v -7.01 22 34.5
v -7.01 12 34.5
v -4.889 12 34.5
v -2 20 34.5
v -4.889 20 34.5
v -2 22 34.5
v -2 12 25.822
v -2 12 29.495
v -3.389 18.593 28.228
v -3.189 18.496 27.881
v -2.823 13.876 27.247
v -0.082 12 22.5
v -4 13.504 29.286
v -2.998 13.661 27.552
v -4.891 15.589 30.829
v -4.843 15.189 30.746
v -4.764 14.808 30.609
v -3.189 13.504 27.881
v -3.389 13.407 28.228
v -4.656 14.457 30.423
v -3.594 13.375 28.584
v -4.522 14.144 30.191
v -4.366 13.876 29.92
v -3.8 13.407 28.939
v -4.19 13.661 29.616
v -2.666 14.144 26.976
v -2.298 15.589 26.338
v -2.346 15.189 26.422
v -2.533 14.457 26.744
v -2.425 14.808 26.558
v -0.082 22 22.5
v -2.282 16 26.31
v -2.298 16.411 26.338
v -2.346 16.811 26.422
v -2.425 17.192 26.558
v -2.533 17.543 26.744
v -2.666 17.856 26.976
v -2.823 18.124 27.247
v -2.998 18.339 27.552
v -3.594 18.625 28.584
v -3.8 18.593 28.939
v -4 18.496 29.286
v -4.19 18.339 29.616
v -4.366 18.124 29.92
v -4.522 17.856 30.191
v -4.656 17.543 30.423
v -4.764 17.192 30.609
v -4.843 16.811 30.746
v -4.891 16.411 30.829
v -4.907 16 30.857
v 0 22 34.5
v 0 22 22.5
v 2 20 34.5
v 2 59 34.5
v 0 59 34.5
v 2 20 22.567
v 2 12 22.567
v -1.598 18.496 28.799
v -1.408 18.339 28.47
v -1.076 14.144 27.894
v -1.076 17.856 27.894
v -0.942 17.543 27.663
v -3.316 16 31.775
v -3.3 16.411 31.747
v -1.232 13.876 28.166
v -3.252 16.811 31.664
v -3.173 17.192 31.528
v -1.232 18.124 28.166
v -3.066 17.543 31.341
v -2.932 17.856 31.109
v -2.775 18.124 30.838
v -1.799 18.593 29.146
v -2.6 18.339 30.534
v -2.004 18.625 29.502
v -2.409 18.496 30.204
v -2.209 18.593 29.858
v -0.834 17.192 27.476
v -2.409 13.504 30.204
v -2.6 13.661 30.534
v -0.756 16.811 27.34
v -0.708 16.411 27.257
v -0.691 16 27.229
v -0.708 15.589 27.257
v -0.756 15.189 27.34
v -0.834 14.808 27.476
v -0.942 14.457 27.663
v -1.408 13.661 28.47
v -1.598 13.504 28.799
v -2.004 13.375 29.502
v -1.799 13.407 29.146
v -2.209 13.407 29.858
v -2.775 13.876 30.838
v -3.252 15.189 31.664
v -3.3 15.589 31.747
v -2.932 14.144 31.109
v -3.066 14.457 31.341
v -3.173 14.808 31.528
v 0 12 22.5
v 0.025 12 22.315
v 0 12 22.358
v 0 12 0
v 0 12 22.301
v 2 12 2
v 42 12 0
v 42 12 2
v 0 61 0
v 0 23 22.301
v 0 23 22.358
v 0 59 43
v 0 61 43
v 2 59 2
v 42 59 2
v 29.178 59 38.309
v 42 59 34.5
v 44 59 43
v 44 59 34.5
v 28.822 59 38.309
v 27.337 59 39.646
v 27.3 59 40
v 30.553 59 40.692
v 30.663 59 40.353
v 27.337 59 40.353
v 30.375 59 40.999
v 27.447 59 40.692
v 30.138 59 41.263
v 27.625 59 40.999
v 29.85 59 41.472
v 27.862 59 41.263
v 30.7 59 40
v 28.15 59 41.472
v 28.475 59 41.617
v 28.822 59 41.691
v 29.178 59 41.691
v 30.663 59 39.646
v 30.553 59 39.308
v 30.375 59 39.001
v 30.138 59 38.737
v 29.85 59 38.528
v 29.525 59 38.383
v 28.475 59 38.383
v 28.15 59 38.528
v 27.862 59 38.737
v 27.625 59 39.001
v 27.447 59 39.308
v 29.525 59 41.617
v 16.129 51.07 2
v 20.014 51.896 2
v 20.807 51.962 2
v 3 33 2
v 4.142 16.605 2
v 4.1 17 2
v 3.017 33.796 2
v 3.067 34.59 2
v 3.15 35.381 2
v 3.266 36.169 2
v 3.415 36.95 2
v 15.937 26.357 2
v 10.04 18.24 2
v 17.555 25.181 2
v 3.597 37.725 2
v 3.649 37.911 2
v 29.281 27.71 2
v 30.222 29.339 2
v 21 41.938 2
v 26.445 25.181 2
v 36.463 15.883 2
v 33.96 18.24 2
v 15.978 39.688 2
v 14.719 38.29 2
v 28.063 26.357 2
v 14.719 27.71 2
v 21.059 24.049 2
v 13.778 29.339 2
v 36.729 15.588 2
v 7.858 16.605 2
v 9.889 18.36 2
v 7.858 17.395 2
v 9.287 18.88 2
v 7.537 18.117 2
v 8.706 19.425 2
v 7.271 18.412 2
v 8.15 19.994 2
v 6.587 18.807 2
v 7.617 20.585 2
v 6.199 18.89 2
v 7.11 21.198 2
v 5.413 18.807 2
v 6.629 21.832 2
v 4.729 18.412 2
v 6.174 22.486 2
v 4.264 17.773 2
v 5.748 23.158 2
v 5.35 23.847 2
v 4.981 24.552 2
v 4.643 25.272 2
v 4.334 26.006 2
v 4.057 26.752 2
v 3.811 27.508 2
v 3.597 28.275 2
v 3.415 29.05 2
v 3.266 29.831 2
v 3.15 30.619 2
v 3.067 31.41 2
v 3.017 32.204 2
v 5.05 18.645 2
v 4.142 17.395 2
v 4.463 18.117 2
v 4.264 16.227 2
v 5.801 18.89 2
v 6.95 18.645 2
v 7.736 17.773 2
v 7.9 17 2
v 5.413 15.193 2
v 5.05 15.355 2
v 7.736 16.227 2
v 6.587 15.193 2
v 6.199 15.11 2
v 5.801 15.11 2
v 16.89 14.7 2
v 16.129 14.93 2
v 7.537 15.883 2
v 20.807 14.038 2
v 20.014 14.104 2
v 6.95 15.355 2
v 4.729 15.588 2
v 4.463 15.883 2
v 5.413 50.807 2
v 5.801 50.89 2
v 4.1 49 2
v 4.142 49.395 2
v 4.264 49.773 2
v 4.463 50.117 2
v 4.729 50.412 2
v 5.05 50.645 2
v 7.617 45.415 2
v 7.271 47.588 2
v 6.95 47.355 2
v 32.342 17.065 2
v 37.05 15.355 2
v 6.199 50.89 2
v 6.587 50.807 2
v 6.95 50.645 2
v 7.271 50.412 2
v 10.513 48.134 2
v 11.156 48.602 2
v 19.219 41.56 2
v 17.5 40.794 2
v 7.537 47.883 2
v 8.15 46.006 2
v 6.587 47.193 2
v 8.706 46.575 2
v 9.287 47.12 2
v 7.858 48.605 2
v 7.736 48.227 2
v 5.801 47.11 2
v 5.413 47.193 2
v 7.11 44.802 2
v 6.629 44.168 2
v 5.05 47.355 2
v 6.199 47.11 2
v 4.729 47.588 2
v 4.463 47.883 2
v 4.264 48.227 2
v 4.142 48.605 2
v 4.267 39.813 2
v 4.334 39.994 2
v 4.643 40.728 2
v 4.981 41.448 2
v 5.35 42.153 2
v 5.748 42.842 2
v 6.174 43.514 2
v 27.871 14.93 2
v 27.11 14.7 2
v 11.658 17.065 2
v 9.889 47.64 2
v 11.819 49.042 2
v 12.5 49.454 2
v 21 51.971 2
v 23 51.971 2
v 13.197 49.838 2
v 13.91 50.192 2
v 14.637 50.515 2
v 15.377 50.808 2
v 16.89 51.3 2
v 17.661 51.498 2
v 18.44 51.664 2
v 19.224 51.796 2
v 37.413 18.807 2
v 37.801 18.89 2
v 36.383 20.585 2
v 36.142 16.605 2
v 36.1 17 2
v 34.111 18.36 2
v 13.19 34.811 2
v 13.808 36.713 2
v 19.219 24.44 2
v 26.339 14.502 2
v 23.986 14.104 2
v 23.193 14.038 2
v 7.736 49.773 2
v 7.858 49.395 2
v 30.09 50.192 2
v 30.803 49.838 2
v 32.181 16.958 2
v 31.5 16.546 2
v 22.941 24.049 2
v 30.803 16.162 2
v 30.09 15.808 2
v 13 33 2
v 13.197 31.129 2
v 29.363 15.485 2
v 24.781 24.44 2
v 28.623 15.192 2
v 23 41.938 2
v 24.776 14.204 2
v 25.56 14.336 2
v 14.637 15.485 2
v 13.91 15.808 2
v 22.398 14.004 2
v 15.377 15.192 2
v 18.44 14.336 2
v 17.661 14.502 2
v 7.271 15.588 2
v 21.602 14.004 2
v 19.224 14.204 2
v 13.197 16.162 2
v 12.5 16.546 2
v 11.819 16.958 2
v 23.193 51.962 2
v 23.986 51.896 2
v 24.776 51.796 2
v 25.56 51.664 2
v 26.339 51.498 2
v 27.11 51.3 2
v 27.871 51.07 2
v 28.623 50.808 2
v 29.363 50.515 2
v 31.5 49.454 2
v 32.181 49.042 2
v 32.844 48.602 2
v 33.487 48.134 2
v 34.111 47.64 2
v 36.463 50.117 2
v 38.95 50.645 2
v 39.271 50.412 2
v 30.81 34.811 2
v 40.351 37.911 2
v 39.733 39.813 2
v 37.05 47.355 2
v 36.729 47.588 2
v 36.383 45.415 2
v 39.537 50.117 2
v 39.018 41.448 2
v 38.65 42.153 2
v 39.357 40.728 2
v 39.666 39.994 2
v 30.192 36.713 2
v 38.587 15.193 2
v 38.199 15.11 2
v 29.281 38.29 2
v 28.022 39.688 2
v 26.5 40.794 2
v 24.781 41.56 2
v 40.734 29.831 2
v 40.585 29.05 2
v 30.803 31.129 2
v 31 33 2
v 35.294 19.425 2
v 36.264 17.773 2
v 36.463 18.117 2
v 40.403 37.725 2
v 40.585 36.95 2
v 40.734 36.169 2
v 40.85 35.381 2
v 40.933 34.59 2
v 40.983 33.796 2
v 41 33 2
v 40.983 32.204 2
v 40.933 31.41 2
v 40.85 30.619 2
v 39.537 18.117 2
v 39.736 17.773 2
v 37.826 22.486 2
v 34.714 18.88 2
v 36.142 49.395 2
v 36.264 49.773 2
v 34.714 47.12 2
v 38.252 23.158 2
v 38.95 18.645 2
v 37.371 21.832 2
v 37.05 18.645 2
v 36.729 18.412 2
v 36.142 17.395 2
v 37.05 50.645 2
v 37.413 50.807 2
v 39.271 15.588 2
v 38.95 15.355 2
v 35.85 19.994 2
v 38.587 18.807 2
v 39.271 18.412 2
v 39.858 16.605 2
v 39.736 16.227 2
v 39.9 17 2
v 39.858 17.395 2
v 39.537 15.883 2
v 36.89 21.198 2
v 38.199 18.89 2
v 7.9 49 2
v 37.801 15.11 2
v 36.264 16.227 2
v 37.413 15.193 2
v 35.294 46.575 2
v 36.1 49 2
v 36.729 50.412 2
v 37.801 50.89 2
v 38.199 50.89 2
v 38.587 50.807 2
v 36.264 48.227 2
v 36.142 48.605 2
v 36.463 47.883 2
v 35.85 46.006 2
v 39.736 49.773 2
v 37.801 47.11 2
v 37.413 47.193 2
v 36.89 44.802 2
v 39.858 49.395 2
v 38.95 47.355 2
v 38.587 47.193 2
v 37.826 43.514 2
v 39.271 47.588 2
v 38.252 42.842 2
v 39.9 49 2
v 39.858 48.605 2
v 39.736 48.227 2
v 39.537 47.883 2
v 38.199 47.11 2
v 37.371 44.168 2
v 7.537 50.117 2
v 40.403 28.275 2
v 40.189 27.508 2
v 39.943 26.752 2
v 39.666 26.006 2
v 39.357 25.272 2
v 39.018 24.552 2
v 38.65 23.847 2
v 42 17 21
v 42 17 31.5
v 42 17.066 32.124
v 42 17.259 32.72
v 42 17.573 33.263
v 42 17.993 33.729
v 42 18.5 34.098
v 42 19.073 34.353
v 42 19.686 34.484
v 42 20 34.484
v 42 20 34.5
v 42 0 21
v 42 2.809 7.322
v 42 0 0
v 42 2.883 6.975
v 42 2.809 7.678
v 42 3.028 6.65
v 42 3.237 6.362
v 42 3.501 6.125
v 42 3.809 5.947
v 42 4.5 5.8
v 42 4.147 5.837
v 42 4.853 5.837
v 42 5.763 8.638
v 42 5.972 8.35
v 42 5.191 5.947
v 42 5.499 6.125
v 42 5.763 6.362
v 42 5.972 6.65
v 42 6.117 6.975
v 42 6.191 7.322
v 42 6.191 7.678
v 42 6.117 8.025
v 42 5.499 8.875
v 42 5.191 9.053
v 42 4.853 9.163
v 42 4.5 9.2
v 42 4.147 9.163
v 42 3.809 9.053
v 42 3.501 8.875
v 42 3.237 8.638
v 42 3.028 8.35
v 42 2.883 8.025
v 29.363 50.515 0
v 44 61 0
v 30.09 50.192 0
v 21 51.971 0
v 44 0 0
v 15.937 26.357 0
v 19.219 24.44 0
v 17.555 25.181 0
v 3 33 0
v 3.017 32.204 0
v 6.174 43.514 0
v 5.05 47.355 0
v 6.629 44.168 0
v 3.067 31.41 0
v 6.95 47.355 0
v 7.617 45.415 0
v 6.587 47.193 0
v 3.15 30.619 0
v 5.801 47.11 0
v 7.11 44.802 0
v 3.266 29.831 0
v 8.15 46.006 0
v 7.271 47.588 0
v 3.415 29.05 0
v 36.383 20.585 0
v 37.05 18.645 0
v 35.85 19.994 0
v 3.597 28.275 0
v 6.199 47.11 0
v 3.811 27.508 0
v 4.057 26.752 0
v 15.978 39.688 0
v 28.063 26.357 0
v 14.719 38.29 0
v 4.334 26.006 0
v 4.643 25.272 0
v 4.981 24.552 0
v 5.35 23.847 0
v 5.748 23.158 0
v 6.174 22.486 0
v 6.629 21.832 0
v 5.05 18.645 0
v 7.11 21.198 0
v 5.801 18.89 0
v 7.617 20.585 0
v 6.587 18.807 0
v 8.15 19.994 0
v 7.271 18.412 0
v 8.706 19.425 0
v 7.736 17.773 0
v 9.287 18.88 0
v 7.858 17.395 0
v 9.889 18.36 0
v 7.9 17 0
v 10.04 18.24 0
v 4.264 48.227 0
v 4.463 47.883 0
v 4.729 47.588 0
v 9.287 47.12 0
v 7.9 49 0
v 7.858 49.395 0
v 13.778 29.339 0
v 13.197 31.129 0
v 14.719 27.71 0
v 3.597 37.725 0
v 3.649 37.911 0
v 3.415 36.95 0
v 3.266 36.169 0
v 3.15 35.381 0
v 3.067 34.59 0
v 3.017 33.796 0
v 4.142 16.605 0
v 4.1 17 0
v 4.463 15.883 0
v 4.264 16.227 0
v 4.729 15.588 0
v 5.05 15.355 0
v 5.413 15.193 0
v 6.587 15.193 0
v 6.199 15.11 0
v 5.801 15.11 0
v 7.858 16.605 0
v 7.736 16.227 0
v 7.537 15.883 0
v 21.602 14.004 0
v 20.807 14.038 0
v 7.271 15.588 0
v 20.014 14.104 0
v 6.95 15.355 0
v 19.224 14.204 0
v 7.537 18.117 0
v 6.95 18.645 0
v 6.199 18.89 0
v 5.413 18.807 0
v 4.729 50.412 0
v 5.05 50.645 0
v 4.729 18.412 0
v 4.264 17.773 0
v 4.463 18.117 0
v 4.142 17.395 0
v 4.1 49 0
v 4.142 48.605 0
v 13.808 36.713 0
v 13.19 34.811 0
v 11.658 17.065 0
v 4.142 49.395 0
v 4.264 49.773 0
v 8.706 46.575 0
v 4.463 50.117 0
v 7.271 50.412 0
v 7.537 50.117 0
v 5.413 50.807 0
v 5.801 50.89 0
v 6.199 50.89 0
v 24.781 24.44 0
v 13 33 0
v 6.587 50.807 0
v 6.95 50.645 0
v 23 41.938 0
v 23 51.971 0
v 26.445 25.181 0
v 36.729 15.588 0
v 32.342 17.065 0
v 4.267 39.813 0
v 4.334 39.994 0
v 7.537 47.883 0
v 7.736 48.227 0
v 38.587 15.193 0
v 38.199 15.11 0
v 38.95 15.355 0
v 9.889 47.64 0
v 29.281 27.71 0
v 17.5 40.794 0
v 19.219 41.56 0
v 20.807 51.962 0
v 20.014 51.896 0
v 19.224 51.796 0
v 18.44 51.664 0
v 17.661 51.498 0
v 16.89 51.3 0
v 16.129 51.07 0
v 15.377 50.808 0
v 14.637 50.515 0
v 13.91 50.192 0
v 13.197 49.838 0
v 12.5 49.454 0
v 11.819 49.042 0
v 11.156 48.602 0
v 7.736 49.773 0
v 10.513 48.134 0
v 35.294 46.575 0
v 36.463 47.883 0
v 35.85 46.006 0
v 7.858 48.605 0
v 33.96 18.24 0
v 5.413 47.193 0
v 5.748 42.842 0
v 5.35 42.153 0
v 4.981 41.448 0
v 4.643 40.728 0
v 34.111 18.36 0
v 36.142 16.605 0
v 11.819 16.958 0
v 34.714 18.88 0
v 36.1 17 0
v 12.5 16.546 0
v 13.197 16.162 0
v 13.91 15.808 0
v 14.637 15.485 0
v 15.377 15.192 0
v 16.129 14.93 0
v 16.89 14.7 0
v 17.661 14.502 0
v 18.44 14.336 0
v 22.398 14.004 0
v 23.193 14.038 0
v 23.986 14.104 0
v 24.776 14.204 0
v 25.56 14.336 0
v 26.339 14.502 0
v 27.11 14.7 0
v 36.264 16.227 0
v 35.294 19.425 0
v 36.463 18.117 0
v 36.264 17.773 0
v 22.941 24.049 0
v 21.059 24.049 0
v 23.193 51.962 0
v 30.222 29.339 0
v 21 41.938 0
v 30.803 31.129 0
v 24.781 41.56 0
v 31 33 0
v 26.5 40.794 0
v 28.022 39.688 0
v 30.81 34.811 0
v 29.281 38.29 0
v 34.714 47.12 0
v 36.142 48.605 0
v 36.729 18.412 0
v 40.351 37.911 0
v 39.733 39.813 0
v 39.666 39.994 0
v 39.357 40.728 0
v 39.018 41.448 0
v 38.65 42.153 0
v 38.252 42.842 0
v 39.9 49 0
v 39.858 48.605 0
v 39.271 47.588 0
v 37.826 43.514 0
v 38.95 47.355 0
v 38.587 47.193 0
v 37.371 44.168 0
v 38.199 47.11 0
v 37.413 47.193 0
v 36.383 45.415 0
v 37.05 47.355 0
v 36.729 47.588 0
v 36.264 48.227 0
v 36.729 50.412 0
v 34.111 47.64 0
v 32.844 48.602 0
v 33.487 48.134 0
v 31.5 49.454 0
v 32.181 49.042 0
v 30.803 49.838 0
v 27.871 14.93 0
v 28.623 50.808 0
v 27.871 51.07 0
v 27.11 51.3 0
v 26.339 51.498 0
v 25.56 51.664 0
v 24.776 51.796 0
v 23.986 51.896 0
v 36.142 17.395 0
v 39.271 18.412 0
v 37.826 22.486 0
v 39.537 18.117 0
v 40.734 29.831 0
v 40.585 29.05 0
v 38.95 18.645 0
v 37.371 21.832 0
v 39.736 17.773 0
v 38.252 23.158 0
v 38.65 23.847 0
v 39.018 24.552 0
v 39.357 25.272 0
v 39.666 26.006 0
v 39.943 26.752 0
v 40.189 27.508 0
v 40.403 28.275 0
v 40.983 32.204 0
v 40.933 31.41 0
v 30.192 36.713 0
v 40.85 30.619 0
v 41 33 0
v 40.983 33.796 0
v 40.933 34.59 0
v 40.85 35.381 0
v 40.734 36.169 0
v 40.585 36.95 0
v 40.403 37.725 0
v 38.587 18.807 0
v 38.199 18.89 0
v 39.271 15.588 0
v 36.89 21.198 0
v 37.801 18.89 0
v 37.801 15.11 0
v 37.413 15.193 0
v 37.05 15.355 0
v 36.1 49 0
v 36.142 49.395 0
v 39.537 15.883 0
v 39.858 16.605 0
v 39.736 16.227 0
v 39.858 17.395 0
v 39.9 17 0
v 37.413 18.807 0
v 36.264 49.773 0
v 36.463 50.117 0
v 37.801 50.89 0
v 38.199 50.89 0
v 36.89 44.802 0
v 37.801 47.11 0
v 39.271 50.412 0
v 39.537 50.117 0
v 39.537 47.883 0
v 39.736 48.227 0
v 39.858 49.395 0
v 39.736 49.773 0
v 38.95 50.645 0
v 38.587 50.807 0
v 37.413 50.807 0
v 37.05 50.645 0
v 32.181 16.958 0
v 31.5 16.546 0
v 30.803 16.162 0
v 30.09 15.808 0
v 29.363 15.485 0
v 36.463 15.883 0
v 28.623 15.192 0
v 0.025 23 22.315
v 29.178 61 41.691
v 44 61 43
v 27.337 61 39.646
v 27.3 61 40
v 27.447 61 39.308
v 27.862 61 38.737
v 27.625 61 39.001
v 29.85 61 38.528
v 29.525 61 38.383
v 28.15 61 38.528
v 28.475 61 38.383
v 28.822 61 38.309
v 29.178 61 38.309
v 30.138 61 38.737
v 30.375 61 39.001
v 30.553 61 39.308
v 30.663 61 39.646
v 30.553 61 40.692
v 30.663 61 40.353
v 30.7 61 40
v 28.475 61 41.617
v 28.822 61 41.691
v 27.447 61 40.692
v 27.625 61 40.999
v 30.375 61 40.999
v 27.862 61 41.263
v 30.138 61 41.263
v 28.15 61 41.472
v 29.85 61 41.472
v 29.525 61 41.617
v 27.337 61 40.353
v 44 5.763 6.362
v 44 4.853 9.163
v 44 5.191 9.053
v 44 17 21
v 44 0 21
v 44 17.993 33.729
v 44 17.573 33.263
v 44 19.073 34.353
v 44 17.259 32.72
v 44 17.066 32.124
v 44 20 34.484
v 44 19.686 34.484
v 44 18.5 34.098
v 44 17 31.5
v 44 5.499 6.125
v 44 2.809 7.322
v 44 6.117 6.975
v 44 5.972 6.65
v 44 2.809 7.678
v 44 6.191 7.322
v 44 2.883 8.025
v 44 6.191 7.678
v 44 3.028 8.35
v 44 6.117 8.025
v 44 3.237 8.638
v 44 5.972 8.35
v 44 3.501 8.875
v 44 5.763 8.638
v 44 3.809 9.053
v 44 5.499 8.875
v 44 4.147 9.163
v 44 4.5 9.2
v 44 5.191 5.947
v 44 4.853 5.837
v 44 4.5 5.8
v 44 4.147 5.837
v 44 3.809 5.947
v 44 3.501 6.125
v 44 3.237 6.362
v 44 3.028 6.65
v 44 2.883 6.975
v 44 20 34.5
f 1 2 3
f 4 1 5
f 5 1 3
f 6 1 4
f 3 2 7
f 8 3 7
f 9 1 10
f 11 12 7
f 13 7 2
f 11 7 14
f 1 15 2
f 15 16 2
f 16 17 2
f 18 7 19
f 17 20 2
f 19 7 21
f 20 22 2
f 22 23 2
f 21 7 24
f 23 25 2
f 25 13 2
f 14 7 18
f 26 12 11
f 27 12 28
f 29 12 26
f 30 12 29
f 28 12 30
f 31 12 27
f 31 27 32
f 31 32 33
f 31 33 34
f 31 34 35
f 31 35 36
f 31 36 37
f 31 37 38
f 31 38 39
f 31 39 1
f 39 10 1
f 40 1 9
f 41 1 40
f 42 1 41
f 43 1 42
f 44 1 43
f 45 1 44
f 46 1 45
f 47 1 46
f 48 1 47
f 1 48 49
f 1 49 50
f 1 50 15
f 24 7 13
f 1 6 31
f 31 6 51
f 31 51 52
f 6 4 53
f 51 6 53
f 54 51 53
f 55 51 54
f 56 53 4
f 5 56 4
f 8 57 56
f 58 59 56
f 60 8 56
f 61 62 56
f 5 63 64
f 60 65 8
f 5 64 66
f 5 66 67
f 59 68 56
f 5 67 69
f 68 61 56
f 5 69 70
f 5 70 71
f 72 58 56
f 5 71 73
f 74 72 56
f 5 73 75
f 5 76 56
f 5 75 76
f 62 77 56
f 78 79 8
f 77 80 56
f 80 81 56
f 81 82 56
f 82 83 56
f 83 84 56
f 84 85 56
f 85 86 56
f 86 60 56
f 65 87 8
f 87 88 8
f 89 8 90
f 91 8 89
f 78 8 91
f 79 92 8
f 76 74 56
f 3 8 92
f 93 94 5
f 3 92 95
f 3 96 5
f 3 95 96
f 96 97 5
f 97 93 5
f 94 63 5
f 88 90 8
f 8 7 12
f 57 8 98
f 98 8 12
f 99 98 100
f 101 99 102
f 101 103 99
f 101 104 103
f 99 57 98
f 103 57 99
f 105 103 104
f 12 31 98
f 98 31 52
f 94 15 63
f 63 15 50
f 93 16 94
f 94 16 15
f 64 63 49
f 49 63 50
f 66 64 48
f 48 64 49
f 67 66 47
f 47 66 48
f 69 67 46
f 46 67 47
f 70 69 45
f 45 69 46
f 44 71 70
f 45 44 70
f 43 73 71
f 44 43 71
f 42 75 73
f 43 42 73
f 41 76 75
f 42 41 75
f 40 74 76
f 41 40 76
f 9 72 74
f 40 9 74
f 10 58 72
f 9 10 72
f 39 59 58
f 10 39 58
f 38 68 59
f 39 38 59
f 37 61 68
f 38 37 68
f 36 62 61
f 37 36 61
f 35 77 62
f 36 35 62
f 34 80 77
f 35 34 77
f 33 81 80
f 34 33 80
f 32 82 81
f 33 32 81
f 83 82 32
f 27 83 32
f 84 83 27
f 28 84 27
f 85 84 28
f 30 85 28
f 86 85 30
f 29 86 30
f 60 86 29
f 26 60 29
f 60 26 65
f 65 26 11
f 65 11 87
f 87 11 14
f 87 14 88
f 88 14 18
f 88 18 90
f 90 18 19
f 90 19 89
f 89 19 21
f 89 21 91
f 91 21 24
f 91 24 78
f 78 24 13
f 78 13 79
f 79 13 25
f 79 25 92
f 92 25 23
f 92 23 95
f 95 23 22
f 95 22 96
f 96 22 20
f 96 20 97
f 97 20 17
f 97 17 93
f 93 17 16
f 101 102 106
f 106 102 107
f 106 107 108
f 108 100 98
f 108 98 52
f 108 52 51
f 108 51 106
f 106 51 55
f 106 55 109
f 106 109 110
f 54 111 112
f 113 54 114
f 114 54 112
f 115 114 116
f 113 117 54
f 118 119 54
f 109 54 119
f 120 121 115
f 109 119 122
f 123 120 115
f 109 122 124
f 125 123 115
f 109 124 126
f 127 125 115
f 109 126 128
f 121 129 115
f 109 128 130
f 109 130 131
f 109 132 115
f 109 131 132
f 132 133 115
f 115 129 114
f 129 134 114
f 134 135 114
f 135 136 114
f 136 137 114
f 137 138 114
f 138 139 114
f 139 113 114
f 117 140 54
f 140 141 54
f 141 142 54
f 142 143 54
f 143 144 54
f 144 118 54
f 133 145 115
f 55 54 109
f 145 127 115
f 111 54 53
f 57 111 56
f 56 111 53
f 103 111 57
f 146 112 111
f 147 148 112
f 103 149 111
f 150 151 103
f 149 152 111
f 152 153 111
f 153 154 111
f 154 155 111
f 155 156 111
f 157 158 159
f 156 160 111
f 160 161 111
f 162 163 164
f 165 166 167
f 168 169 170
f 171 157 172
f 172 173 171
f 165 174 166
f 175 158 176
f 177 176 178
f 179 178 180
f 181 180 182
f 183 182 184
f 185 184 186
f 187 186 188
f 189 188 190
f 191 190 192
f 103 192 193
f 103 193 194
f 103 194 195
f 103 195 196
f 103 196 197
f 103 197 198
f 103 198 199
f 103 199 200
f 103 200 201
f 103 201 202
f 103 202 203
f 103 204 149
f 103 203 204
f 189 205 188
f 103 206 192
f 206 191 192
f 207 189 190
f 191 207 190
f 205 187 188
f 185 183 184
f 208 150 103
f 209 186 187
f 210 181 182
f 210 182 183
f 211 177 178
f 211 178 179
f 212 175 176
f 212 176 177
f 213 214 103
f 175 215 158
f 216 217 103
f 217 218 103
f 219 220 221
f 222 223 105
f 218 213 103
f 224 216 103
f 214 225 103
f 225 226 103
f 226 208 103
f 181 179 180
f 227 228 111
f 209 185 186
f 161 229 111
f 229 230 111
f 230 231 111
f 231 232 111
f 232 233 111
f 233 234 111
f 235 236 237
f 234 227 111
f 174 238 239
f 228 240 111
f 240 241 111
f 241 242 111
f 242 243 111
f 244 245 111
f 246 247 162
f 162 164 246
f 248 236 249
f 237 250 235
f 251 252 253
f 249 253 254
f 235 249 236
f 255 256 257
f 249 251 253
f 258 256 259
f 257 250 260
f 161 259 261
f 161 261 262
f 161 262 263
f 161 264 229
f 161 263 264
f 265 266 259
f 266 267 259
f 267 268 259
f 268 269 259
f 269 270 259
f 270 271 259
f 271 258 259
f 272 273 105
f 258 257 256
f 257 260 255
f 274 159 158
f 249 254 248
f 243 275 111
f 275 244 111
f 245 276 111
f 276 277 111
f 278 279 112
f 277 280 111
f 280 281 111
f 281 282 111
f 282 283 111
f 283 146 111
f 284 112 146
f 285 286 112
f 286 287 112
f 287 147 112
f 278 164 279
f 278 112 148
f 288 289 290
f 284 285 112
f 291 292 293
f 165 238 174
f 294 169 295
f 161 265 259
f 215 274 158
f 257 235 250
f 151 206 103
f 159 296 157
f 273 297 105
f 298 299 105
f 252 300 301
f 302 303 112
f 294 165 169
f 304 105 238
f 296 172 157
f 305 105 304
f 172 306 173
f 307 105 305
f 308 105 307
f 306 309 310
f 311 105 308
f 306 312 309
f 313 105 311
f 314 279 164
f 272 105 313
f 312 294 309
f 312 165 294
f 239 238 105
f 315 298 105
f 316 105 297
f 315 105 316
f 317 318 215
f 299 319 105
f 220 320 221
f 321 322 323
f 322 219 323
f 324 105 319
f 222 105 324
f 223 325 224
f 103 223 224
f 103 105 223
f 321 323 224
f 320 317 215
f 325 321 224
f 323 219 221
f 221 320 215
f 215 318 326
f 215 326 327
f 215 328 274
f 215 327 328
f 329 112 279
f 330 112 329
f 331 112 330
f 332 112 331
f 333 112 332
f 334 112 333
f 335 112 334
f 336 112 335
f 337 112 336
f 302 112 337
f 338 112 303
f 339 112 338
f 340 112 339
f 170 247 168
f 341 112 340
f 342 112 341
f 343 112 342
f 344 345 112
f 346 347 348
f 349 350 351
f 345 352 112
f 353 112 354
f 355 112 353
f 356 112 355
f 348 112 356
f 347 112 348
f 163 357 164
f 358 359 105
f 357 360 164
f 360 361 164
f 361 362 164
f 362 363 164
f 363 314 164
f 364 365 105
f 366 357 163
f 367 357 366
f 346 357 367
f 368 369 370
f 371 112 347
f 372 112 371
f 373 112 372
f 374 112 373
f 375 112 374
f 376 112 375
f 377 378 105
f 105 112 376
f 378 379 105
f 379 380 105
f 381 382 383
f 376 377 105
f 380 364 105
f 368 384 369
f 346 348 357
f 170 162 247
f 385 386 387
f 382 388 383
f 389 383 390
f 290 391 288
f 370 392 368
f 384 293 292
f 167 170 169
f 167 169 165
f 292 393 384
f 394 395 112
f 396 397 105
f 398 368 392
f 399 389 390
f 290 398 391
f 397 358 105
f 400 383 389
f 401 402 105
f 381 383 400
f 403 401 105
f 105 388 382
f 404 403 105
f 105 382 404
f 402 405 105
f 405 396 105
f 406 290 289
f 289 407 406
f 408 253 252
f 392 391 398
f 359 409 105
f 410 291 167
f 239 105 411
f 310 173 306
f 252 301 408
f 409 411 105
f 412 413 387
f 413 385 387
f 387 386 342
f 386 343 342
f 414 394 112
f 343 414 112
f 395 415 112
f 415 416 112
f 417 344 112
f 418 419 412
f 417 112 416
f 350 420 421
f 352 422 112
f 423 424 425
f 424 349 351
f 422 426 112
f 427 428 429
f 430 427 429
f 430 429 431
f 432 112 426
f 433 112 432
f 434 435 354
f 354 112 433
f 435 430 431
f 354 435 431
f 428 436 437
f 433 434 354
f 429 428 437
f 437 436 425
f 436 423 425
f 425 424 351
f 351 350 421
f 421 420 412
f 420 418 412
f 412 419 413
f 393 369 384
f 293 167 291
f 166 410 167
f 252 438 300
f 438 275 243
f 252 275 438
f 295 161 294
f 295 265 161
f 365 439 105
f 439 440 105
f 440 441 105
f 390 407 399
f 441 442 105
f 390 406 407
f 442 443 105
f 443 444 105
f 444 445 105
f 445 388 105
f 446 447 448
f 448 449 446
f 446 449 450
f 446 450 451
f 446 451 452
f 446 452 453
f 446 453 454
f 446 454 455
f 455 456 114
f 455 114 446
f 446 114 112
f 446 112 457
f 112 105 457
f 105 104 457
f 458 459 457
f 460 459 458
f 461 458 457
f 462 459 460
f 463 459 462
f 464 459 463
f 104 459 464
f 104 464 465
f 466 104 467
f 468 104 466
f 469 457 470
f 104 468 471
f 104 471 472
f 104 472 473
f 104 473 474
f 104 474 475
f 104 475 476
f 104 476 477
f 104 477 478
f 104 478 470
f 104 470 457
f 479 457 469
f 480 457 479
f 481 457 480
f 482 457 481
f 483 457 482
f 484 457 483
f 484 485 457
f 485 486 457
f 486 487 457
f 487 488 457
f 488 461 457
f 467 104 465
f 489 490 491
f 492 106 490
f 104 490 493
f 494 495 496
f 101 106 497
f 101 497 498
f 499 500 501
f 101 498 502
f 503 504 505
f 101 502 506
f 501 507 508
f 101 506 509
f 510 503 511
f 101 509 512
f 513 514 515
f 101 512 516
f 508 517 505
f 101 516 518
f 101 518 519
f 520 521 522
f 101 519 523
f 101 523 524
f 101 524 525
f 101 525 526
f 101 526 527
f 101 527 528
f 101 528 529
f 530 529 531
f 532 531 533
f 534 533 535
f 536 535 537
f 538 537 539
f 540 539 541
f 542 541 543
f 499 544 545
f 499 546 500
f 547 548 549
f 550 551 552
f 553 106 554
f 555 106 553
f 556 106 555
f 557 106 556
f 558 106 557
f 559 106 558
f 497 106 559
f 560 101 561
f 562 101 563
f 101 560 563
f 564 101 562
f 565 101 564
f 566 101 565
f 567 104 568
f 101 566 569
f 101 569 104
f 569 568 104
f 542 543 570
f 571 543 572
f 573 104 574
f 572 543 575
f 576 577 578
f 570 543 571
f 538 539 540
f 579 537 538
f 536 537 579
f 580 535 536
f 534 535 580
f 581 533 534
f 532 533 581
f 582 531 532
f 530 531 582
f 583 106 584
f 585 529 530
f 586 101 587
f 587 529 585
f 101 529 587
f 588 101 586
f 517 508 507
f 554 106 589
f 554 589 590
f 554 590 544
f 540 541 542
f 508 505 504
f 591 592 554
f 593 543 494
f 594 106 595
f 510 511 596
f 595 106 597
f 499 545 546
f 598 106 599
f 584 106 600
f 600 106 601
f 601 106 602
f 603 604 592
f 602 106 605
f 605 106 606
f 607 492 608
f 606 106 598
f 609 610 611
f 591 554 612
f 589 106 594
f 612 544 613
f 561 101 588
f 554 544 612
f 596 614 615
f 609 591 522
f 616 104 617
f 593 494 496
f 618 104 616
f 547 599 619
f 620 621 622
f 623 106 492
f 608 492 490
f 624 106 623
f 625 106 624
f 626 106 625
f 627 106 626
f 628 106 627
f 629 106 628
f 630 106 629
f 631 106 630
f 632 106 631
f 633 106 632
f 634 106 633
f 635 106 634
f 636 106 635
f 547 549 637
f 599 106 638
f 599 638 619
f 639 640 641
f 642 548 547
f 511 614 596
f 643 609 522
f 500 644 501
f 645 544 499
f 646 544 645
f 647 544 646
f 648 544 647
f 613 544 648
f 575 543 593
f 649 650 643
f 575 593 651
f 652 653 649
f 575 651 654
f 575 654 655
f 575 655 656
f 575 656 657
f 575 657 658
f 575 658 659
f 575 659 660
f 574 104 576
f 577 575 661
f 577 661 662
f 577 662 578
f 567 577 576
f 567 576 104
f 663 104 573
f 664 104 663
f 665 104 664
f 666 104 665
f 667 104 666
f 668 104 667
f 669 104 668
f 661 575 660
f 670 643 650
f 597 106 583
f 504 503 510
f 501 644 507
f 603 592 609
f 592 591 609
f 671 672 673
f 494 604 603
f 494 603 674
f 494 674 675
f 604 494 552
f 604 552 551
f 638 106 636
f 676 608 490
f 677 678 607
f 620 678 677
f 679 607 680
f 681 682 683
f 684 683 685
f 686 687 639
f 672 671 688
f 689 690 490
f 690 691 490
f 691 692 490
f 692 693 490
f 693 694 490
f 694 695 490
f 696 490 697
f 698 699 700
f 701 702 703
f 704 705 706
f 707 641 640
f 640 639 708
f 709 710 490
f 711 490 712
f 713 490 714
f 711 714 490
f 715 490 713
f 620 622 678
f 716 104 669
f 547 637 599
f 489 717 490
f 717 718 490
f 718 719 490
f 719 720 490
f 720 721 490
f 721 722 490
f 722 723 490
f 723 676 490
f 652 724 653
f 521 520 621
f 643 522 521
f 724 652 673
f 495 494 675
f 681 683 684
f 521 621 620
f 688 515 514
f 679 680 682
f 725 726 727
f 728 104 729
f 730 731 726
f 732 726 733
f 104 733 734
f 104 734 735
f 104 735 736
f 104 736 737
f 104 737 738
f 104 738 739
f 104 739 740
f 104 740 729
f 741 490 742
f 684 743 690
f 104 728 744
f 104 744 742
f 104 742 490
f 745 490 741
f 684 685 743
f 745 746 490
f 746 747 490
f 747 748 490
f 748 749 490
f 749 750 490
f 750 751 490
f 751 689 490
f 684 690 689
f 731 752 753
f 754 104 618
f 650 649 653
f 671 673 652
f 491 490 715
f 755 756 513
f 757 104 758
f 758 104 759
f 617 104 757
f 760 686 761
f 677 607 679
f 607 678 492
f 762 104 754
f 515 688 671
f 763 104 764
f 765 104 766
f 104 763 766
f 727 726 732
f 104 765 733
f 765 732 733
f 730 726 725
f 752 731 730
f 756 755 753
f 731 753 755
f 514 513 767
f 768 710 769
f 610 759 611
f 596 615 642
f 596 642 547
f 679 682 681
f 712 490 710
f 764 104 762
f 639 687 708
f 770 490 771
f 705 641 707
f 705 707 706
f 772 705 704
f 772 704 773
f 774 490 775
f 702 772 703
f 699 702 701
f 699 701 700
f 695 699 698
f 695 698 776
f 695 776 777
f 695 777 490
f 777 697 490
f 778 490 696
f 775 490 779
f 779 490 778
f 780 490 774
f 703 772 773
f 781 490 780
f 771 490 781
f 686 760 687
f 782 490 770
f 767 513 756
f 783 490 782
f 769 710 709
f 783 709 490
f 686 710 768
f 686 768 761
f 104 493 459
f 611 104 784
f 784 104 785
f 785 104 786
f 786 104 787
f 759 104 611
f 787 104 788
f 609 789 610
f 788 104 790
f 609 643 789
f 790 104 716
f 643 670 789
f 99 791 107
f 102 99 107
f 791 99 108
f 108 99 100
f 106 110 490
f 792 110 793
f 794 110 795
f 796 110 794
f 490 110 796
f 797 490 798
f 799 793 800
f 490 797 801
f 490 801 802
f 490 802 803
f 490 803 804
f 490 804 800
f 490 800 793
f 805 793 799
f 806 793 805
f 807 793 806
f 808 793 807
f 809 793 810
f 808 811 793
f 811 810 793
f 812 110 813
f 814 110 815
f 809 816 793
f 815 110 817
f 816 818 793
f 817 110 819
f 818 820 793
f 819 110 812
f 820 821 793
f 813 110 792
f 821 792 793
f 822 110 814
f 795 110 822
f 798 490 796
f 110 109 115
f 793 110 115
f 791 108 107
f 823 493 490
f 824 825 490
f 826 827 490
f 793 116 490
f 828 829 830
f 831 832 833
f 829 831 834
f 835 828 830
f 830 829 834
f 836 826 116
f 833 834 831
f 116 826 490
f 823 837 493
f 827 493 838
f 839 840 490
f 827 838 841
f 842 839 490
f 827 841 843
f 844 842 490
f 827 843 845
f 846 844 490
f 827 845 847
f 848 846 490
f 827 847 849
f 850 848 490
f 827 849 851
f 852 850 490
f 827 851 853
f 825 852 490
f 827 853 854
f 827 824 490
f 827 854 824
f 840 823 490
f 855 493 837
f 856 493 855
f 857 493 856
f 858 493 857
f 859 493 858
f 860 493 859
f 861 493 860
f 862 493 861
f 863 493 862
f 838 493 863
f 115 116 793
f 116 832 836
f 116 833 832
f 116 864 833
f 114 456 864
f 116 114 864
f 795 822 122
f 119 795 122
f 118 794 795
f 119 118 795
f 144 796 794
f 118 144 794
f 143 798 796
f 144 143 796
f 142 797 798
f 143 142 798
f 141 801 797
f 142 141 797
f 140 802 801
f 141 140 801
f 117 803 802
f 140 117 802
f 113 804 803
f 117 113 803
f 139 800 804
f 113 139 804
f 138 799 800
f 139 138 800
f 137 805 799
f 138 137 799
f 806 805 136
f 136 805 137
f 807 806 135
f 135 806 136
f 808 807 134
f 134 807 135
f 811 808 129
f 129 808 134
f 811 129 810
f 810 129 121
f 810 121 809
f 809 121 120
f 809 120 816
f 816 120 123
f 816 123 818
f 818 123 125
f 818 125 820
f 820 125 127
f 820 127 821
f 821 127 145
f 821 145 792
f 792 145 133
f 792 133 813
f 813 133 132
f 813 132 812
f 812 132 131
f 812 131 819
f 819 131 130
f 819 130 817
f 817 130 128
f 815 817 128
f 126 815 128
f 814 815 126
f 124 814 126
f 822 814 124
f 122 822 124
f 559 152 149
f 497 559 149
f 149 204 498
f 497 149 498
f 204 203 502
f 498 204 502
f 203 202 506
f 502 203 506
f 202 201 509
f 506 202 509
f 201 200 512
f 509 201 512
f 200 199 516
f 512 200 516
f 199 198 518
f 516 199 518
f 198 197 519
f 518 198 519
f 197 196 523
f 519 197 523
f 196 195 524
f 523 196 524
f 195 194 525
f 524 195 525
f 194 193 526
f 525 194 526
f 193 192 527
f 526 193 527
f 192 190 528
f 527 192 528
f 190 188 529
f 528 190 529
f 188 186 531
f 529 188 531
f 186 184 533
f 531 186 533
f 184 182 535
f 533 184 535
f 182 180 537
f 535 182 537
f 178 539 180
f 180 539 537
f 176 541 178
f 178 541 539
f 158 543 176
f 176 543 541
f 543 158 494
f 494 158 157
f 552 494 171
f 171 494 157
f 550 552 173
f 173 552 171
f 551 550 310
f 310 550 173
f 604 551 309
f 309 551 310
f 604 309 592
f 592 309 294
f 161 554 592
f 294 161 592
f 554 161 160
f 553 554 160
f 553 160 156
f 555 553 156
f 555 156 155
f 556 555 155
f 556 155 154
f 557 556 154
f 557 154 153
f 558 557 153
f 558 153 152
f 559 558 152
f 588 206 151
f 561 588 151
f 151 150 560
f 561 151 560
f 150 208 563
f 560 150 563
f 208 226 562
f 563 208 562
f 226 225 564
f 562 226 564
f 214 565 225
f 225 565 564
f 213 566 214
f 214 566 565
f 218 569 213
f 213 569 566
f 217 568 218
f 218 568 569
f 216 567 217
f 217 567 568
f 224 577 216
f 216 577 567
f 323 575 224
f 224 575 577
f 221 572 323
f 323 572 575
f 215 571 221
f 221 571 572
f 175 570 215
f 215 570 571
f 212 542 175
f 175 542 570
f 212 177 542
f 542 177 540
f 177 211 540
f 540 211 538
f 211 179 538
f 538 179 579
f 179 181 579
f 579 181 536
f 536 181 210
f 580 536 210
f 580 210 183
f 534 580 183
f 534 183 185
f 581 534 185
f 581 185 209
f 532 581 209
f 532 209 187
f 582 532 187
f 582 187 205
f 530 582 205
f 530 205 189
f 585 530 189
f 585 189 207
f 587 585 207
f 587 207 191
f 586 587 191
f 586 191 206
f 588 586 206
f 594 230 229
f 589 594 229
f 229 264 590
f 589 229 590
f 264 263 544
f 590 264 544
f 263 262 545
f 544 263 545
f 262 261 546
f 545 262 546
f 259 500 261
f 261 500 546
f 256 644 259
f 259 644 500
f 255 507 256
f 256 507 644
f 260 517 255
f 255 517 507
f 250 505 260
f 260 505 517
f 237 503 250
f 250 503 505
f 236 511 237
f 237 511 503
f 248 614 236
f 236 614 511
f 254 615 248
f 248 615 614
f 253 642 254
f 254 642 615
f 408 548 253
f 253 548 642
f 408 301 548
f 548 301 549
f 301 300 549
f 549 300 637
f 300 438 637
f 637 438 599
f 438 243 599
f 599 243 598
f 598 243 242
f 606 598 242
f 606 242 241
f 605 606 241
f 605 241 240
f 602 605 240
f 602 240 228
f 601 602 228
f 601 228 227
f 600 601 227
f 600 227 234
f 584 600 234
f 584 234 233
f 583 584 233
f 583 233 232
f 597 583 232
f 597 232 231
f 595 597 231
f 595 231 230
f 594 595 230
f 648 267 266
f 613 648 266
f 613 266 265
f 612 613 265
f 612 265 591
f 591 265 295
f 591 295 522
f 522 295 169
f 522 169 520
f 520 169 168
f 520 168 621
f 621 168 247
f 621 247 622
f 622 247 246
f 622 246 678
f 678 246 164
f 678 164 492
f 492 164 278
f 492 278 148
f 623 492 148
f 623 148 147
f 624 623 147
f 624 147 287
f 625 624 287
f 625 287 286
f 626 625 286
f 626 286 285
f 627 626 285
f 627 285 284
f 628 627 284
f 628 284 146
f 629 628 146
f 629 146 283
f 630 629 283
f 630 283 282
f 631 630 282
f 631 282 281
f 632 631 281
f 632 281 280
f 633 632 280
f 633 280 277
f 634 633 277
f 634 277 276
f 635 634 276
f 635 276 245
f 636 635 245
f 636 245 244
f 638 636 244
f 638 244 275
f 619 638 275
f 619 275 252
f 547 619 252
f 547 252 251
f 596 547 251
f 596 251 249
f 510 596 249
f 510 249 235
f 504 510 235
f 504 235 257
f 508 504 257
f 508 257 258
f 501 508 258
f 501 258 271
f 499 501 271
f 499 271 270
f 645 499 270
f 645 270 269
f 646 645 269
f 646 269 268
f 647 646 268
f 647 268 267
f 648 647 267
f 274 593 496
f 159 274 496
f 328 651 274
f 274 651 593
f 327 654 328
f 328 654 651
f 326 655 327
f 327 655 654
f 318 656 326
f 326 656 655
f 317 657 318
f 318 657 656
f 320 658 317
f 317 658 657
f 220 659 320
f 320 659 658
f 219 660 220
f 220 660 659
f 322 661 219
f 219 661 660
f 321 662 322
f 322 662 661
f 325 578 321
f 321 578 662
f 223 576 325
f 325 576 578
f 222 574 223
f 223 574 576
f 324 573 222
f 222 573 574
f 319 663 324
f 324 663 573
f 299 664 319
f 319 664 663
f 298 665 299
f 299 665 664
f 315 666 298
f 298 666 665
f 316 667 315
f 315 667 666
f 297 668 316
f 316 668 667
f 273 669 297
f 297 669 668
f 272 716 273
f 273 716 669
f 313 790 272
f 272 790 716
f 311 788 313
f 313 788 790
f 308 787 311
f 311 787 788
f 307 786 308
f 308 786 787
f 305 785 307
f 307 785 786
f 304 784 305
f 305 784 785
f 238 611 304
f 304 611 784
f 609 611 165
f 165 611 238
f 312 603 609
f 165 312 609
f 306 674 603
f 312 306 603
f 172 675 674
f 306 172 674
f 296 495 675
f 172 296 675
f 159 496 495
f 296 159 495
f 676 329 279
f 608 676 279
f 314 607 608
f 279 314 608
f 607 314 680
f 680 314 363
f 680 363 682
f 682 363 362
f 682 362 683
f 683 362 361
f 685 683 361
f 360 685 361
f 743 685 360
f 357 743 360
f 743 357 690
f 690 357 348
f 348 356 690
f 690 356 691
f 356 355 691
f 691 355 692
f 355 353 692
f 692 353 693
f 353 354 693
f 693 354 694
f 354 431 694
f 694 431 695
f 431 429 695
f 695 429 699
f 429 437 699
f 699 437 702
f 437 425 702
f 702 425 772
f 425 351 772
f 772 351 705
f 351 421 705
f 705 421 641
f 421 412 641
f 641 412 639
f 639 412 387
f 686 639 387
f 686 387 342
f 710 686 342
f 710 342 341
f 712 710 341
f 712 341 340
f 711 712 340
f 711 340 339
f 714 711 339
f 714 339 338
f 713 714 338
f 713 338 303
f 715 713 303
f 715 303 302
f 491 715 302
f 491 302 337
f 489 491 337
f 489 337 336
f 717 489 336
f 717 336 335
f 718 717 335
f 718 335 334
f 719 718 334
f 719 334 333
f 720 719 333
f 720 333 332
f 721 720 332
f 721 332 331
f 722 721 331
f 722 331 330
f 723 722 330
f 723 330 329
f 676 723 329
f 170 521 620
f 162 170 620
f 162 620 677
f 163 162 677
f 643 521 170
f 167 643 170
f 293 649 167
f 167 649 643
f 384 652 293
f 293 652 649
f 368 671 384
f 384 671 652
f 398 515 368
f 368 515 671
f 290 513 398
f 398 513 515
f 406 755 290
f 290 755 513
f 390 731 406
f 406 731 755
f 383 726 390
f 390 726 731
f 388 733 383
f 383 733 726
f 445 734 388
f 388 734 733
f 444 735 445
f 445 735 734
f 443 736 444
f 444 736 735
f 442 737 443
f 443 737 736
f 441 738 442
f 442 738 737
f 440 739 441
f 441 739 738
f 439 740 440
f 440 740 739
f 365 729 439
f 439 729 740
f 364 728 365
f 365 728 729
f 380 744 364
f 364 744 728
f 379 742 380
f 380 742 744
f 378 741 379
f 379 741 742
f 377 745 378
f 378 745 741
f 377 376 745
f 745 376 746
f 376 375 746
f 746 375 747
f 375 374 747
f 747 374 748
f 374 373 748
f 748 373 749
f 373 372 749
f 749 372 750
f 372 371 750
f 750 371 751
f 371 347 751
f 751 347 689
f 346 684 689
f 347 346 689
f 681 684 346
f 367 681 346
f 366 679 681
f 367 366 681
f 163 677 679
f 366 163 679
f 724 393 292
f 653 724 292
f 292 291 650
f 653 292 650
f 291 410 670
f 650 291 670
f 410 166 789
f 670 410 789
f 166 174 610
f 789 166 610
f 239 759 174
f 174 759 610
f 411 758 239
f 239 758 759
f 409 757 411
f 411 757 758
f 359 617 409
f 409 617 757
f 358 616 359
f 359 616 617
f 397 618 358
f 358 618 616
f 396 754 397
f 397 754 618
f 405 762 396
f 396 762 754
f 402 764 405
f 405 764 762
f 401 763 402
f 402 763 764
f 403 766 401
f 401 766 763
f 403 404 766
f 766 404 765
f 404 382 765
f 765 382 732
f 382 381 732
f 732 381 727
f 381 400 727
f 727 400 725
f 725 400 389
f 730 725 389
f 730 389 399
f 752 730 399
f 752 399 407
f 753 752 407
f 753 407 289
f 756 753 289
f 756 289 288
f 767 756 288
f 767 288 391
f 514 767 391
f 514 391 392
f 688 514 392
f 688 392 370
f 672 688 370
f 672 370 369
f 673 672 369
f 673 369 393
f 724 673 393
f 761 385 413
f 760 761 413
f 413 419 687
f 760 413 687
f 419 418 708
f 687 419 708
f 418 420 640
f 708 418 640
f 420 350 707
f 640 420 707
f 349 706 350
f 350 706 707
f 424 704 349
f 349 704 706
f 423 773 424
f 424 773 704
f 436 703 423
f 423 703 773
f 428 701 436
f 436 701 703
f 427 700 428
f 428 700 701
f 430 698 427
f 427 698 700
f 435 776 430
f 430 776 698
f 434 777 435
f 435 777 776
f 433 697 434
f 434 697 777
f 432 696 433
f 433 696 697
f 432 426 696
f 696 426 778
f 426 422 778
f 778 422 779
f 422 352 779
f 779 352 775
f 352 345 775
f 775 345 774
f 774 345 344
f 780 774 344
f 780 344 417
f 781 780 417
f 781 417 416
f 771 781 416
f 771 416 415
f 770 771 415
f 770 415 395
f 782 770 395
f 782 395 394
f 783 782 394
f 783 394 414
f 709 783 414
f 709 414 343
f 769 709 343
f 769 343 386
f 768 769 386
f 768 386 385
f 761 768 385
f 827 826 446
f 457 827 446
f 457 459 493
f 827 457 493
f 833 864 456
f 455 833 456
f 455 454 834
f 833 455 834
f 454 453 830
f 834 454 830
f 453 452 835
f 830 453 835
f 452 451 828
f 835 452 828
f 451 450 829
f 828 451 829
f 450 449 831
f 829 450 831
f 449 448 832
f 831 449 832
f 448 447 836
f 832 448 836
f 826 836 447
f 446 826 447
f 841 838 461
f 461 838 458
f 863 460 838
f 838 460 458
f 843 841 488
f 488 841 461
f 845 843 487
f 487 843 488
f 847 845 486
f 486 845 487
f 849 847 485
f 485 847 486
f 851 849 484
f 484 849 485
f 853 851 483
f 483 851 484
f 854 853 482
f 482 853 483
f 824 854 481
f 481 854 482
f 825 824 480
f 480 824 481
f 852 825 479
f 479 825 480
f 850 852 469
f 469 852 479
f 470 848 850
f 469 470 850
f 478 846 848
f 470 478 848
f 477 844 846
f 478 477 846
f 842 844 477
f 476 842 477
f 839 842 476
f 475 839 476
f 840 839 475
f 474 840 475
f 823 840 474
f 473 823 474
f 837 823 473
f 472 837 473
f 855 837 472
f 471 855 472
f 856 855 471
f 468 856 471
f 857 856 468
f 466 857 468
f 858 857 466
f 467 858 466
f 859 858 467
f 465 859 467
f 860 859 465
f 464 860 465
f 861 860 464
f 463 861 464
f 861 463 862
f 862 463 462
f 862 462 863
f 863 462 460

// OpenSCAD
wall=2;
innerX=40;
innerY=59;
innerZ=43-wall;
dZ=32.5;
solidY=47;
stepY=17;
stepZ=19;
screw1X=27;
screw1Z=innerZ-3+wall;
screw2Y=4.5;
screw2Z=7.5;
fanX=wall+innerX/2;
fanY=33;
flapZ=12;
flapY=10;
flapA=60;
flapX=60;
lug=2.5;

PSUFanHousing();
//Flap();

module PSUFanHousing()
{
	difference()
	{
		union()
		{
			cube([innerX+2*wall,innerY+wall,innerZ+wall]);
			translate([-flapZ+1,innerY-solidY,dZ-flapZ+wall])
				cube([flapZ,flapY,flapZ]);
		}
		translate([wall,-1,wall])
			cube([innerX,innerY+1,innerZ+2*wall]);
		translate([-wall,-1,wall+dZ])
			cube([innerX+4*wall,innerY+1,innerZ+2*wall]);
		translate([-wall,-1,-3*wall])
			cube([innerX+2*wall,1+innerY-solidY,2*innerZ]);
		translate([5*wall,-1,stepZ+wall])
			cube([innerX,stepY+1,innerZ+2*wall]);
		translate([innerX,stepY,dZ+wall])
			CornerRadius(thick=10,rad=3);
		translate([screw1X+wall,innerY/2,screw1Z])
			rotate([90,0,0])
				cylinder(h=200,r=1.7,$fn=30,center=true);
		translate([screw1X,screw2Y,screw2Z])
			rotate([0,90,0])
				cylinder(h=200,r=1.7,$fn=30,center=true);
		translate([fanX, fanY, 0])
			Fan();
		translate([-flapZ+1.3+wall,innerY-solidY-1,1.55*flapZ+dZ-flapZ+wall])	
		{
			rotate([0,flapA,0])
				cube([2*flapZ, flapY-wall+1, 2*flapZ]);
			translate([-2.005*flapZ, -2, -flapZ+wall])
				rotate([0,flapA,0])
					cube([2*flapZ, flapY-wall+6, 2*flapZ]);
			translate([0,flapY/2, 0])
				rotate([0,90-flapA,0])
					cylinder(h=10*wall, r=lug, center=true, $fn=40);
		}
		translate([-flapZ+1.3+wall,innerY-solidY-1,1.55*flapZ+dZ-flapZ+wall])
			translate([3*wall,flapY/2, -flapZ])
				rotate([0,flapA,0])
					cylinder(h=10*wall, r=1.05*lug, center=true, $fn=40);
	}
}

module Flap()
{
	union()
	{
		cube([flapX, flapY, wall]);
		translate([flapZ+0.5,0,0])
			cube([flapX-flapZ, flapY, 2*wall]);
		translate([flapZ/2, flapY/2+wall/2, 0])
		difference()
		{
			cylinder(h=3*wall, r1=lug, r2=1.1*lug, $fn=40);
			cube([20,1.3,50],center=true,$fn=30);
		}
	}
}

module Fan()
{
	union()
	{
		difference()
		{
			cylinder(h=50,r=38/2,center=true,$fn=150);
			cylinder(h=60,r=9,center=true,$fn=30);
			for(a=[0:4])
				rotate([0,0,a*72])
				{
					translate([-wall/2,0,-30])
						cube([wall,50,200]);
				}
		}
		for(x=[-1,1]) for(y=[-1,1])
			translate([x*16,y*16,0])
				cylinder(h=50,r=1.9,center=true,$fn=30);
	}
}


module CornerRadius(thick=10,rad=5)
{
	rotate([90,0,0])
	translate([-thick/2,-rad,-rad])
	difference()
	{
		cube([thick,2*rad,2*rad]);
		rotate([0,90,0])
			cylinder(h=3*thick,r=rad,center=true,$fn=30);
	}
}
